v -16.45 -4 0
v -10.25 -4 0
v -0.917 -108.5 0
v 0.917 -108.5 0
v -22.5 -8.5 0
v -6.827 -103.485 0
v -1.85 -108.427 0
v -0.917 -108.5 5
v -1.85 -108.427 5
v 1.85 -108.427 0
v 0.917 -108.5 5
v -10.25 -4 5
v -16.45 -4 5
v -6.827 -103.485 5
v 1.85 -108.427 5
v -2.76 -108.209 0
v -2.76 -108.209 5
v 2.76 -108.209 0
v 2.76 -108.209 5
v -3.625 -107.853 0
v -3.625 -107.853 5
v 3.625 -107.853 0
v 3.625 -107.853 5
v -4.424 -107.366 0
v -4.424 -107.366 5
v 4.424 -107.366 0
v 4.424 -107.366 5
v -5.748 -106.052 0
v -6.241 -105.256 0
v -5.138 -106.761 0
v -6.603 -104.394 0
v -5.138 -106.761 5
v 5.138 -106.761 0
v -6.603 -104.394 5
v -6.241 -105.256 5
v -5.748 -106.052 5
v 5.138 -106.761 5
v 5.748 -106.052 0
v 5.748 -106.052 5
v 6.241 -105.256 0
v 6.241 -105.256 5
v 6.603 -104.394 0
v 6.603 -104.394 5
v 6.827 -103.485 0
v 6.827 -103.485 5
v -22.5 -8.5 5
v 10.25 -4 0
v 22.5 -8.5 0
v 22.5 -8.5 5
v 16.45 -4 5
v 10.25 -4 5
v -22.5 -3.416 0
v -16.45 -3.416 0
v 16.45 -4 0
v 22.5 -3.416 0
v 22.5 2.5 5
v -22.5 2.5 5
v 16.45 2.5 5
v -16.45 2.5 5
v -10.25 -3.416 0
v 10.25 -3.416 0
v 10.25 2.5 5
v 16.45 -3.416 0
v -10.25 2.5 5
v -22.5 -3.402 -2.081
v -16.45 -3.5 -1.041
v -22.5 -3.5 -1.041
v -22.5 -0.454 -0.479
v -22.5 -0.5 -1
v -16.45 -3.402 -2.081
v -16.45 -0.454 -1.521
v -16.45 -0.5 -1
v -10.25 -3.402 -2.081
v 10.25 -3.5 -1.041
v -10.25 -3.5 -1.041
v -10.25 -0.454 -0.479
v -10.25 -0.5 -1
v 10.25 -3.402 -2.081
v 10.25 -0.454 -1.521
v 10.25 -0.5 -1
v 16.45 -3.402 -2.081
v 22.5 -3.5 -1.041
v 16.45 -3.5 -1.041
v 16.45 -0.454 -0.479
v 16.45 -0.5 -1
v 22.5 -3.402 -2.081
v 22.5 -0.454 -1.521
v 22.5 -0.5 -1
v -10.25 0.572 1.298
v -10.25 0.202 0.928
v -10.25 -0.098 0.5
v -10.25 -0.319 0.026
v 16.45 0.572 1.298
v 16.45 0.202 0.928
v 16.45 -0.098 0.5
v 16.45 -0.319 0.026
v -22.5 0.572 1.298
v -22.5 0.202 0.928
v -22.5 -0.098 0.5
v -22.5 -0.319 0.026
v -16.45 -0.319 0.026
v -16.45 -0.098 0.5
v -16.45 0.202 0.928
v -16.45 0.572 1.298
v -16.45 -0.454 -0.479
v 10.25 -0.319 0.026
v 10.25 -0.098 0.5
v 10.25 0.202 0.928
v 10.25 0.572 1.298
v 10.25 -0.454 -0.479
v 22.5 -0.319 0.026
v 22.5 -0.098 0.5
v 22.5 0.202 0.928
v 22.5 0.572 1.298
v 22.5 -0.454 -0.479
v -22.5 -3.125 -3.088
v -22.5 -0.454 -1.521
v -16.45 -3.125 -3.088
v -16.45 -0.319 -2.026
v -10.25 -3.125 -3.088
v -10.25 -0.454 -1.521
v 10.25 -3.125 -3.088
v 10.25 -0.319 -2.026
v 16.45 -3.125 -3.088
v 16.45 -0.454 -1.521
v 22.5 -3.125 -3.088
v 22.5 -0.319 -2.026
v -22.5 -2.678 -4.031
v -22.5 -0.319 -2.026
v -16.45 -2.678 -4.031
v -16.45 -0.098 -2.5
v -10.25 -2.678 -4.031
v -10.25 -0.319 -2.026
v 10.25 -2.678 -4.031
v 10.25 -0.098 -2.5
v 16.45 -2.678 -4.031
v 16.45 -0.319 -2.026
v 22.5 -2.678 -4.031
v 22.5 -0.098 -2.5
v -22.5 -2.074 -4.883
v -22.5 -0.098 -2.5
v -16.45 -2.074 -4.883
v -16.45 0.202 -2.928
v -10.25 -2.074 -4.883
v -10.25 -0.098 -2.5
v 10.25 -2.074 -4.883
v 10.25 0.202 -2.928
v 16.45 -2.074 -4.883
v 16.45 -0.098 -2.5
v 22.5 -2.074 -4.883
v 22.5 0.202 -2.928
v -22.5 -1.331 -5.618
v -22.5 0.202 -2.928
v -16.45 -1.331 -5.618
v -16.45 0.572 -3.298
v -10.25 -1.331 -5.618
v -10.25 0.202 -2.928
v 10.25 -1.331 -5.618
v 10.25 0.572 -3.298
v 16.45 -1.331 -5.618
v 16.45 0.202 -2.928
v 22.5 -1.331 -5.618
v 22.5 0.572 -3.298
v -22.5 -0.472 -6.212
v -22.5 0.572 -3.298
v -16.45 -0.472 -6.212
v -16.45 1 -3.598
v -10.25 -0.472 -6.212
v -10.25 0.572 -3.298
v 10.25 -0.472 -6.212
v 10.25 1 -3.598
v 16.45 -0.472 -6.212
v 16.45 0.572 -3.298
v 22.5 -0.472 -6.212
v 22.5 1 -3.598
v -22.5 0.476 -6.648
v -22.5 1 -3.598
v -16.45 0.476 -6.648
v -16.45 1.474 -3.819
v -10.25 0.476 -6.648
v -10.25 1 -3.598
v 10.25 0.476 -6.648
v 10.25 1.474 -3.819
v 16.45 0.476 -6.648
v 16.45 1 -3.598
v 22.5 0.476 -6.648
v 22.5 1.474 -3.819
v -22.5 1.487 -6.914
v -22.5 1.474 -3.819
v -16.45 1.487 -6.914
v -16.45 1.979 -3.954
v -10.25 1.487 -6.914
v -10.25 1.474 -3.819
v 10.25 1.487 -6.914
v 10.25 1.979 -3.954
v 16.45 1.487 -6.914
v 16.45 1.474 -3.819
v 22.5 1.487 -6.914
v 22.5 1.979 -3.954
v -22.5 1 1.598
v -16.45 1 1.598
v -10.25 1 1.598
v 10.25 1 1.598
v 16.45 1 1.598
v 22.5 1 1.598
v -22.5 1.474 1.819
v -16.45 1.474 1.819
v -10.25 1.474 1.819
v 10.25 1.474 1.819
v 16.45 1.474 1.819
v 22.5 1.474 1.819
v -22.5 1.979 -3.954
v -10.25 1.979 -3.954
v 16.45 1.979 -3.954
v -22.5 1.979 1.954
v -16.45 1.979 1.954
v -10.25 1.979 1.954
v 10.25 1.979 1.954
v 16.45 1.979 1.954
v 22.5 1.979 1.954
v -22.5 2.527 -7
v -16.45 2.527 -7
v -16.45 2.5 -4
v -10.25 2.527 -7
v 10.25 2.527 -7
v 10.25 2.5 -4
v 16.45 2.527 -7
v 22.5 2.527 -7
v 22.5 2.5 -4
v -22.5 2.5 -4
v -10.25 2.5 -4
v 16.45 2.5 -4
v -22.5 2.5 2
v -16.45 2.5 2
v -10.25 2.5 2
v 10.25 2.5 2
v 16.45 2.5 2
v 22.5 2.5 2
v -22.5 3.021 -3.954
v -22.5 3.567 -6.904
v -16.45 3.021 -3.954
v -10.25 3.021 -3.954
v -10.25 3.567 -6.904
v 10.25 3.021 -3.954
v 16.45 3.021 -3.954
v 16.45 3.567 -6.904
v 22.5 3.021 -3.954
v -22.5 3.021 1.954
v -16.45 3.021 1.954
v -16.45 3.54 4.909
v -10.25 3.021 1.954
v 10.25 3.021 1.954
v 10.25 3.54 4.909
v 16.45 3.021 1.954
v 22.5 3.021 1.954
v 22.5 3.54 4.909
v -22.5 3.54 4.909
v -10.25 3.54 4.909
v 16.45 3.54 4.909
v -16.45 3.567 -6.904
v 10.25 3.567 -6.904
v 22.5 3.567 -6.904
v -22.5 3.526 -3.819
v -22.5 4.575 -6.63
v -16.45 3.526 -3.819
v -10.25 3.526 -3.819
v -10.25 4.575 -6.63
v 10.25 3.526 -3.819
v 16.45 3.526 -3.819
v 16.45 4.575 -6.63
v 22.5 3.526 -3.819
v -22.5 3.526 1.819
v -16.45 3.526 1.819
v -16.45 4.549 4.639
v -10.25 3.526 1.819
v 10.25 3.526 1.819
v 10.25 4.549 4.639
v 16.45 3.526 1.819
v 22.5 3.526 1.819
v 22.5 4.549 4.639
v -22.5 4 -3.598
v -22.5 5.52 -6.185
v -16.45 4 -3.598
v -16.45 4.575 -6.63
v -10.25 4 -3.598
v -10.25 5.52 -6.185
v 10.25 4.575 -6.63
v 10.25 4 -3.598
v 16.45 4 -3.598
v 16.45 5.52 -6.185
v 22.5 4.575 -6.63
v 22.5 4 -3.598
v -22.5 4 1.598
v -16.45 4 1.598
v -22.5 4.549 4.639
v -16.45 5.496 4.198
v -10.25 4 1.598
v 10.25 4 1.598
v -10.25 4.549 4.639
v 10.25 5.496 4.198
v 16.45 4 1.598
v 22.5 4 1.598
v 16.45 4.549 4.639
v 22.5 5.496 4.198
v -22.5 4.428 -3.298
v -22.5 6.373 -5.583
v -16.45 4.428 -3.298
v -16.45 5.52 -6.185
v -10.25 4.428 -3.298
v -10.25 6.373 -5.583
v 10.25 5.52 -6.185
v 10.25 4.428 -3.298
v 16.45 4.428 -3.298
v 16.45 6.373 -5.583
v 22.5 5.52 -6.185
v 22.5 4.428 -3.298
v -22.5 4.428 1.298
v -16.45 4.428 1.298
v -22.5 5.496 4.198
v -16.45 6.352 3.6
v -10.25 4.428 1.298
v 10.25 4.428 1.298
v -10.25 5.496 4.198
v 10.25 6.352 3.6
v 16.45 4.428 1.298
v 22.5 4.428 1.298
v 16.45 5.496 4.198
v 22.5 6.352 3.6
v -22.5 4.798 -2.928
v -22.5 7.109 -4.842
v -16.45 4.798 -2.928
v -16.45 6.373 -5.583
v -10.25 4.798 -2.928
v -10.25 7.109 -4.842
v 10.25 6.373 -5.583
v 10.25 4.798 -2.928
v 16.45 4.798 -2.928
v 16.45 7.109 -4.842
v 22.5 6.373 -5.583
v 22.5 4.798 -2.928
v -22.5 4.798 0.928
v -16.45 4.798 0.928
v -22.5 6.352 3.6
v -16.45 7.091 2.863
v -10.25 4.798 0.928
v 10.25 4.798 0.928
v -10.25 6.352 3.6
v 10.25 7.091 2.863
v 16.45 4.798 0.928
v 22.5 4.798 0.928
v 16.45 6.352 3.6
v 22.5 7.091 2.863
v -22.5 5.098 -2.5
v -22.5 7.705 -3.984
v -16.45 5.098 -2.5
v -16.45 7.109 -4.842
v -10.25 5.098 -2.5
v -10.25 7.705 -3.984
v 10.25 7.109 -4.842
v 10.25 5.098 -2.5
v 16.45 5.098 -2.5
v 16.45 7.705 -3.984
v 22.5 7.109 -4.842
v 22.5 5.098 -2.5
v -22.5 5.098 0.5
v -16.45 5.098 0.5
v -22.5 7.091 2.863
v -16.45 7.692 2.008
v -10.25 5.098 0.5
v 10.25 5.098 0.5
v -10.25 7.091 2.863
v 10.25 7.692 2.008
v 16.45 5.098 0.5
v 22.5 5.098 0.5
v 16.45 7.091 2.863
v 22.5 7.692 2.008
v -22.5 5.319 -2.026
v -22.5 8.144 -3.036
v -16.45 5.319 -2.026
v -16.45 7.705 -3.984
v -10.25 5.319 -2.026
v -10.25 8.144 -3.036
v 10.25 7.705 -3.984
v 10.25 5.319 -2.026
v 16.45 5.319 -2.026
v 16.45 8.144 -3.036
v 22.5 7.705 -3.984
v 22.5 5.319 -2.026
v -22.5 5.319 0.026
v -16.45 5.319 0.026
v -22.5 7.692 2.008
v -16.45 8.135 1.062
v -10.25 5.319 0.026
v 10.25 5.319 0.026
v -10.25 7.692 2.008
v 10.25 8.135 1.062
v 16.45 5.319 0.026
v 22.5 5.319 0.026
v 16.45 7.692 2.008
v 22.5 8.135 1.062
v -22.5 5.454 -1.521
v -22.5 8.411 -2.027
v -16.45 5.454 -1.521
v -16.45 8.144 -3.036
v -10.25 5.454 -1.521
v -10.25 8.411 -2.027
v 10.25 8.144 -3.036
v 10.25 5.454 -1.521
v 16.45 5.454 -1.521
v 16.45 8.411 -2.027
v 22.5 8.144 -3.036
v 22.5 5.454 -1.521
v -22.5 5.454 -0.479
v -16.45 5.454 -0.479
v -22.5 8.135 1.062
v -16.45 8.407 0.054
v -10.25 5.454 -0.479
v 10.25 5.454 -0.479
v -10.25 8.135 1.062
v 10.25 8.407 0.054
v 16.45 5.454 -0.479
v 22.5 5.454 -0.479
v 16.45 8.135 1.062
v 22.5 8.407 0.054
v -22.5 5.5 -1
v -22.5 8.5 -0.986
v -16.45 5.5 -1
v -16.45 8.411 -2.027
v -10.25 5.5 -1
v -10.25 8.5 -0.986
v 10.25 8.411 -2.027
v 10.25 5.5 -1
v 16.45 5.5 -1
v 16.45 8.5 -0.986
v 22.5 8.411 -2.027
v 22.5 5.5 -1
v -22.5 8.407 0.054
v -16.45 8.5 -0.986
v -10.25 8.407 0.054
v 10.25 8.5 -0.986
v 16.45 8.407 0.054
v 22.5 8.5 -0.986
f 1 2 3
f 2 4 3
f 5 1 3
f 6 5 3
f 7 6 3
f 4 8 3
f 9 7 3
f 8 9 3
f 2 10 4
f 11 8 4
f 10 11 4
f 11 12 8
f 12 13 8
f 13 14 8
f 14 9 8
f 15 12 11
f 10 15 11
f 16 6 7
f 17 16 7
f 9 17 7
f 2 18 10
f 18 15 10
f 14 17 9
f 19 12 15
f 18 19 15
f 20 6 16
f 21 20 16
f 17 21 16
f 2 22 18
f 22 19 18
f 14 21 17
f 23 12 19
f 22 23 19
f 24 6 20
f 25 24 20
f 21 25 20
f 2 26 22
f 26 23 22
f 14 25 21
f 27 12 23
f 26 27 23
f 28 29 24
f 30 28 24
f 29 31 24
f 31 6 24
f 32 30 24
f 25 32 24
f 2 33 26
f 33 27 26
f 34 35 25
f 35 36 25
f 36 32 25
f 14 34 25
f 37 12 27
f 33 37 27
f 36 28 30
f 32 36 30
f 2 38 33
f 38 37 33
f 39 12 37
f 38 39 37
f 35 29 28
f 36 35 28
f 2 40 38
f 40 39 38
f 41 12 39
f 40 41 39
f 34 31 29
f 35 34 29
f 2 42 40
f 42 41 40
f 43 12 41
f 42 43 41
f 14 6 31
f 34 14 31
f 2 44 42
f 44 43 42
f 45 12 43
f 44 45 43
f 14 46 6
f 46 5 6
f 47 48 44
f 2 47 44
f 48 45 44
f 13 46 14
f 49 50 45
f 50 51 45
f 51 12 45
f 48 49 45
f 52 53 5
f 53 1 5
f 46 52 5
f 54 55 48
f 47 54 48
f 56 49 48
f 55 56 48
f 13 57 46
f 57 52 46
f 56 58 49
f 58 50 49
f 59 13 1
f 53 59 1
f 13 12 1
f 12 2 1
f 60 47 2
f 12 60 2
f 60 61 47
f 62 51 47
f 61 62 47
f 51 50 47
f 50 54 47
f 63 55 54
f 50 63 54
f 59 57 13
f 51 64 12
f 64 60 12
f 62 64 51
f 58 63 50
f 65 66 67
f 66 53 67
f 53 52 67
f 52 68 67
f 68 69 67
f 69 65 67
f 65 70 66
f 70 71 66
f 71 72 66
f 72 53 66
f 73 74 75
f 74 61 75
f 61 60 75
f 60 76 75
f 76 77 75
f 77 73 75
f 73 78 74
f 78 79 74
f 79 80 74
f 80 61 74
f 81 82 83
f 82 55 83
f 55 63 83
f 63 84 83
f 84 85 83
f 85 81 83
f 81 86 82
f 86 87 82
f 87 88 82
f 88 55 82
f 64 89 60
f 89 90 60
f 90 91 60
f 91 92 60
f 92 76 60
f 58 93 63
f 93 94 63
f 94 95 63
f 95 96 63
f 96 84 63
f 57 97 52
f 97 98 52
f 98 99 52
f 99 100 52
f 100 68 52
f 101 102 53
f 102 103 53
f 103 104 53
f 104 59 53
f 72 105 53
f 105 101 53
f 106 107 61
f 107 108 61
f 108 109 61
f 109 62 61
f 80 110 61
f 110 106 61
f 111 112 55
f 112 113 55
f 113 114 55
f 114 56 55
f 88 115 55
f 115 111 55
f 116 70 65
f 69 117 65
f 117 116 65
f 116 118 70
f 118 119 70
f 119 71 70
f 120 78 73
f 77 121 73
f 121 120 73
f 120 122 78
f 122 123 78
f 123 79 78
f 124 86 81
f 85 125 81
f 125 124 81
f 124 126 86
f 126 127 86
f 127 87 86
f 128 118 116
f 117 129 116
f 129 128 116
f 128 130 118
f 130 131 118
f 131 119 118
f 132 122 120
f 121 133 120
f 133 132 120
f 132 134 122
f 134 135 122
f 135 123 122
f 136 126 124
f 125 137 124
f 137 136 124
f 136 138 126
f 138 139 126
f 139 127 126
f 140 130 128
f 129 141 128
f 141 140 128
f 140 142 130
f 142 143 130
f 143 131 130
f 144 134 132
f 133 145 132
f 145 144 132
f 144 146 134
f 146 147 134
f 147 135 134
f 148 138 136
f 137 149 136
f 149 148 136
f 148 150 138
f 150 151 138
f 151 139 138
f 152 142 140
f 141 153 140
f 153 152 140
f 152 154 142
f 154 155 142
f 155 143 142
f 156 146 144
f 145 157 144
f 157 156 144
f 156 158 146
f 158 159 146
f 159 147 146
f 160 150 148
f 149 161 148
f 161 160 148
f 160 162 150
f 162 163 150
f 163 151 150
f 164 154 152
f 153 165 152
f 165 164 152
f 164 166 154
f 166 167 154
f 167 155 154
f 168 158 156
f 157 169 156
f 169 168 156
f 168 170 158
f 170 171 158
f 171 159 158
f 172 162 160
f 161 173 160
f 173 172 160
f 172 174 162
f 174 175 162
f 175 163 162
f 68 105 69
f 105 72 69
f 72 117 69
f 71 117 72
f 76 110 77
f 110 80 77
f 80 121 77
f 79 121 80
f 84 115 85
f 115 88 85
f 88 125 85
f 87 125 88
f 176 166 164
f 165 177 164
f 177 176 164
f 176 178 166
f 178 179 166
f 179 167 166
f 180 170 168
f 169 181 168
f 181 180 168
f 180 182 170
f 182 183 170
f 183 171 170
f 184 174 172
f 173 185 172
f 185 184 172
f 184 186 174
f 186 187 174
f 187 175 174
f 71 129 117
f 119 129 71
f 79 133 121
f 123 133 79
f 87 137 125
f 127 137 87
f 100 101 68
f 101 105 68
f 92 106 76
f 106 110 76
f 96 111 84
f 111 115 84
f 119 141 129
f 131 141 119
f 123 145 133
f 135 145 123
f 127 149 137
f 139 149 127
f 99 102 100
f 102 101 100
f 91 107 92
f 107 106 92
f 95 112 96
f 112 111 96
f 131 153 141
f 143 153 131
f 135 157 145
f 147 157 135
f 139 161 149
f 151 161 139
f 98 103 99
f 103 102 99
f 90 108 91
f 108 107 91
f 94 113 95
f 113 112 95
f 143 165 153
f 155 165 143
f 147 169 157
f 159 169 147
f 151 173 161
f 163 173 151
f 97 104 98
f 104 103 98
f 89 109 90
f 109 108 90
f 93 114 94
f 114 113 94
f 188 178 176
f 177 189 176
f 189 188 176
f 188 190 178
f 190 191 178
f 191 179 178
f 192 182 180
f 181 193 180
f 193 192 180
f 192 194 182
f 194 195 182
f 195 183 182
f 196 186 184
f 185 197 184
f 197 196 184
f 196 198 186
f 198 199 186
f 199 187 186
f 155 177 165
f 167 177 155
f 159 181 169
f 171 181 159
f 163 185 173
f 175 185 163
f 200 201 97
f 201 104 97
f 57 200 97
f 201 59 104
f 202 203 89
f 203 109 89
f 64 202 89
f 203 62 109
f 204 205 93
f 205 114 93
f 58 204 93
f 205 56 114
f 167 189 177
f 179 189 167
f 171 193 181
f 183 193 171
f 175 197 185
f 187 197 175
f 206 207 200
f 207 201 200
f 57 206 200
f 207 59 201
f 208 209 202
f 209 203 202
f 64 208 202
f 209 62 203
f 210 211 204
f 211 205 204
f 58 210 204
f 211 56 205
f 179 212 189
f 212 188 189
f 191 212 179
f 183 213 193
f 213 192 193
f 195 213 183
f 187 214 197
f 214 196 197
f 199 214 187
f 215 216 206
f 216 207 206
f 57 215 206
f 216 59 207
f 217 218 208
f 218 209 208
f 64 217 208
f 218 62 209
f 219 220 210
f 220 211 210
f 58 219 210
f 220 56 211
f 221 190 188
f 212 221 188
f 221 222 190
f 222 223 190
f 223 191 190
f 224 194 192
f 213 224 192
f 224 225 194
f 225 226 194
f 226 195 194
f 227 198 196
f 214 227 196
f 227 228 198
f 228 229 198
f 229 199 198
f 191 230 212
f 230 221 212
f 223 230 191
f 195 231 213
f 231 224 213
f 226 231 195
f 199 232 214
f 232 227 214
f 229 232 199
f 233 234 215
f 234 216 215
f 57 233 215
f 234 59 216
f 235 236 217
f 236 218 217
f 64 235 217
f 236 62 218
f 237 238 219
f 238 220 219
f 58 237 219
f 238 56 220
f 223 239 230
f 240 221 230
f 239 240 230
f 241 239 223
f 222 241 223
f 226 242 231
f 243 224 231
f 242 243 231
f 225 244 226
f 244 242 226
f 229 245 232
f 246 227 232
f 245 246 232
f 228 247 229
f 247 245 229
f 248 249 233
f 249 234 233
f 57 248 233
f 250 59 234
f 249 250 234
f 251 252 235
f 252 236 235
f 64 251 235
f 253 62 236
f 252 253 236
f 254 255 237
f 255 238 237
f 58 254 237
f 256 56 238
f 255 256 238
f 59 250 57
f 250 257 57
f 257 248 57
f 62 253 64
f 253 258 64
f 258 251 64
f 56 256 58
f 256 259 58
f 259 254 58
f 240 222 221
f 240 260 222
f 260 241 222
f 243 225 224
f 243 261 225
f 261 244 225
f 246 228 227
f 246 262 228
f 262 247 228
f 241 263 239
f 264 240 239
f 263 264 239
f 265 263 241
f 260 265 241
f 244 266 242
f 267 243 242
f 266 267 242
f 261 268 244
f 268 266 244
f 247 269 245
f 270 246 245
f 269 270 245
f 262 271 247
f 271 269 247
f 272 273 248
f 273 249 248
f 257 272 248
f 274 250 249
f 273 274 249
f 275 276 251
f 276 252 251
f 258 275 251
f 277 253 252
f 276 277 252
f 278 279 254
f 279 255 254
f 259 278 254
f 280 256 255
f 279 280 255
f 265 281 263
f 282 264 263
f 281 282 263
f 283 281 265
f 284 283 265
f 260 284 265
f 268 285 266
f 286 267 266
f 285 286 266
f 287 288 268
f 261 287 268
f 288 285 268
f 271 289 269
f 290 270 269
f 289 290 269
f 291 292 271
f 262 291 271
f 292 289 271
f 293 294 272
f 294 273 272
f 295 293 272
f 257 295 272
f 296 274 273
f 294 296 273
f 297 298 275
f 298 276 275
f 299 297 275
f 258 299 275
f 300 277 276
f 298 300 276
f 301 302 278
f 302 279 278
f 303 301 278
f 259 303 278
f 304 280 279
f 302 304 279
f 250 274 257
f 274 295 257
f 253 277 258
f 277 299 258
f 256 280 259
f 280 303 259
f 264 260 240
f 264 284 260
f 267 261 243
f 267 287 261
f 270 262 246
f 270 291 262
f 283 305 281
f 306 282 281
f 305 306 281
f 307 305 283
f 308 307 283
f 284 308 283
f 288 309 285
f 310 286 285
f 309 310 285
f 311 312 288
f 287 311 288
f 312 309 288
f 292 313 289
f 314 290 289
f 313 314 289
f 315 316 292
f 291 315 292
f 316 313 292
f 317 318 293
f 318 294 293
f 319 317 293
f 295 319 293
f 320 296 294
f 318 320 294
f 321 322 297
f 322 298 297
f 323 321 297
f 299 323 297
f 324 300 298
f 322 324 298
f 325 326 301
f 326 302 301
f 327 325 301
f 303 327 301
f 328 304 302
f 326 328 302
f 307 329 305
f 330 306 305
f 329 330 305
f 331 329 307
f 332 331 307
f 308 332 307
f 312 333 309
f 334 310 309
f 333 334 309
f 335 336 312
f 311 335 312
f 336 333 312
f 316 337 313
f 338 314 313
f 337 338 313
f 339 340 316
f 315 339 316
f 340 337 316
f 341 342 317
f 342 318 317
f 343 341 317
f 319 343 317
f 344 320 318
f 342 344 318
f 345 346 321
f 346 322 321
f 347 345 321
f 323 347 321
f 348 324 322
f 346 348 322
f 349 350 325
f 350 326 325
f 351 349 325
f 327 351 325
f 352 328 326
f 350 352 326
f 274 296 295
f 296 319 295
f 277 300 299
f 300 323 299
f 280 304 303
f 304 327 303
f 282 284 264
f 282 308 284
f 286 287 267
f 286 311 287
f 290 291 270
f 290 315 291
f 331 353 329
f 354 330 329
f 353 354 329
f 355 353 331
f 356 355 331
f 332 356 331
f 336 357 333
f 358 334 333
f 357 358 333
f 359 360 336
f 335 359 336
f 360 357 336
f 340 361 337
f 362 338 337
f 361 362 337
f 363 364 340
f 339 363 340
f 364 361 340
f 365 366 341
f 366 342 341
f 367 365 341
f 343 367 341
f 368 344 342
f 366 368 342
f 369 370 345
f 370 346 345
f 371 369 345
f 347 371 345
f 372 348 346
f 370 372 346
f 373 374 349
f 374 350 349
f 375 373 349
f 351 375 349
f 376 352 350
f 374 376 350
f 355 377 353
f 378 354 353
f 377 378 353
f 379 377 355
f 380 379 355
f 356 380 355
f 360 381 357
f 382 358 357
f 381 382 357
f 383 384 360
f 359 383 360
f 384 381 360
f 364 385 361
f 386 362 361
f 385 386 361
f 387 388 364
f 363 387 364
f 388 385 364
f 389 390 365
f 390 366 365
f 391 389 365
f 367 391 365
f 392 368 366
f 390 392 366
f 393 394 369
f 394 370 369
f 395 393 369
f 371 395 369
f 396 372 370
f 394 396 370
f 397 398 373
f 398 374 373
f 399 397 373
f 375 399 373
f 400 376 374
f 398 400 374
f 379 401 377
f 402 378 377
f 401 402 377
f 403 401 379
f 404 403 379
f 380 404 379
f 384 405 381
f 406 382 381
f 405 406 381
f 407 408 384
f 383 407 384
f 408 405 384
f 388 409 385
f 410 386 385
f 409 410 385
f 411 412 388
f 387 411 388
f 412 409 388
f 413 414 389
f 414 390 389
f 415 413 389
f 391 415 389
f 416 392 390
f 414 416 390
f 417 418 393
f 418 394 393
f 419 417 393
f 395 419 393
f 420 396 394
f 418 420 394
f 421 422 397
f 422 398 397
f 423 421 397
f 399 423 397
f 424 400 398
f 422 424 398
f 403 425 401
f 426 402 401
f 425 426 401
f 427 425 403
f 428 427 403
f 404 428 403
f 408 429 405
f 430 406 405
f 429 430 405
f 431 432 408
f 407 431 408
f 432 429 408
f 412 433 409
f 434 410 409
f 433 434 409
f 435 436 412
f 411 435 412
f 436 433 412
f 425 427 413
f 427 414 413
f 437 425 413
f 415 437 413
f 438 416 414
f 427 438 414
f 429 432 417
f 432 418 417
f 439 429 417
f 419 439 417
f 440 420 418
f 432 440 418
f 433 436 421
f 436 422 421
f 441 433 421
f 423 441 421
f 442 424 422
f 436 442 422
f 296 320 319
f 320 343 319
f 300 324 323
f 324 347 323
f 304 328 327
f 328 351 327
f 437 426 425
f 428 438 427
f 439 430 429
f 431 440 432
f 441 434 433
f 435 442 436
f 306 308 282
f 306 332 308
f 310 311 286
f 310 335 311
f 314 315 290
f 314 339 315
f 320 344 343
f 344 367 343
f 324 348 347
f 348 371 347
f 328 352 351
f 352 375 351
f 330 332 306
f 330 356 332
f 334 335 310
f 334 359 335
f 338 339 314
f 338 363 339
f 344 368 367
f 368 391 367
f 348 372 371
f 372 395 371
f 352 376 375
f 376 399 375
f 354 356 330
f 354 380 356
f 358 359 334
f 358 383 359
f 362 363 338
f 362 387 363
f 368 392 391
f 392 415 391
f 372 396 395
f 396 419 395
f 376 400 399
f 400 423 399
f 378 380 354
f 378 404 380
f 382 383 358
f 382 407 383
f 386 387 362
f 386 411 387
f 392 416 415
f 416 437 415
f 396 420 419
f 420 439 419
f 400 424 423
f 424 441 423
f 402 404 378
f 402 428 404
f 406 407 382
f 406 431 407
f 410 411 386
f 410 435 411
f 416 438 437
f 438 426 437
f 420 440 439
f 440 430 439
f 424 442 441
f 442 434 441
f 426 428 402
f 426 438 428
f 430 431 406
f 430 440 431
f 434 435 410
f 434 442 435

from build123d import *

# Parameters (mm, degrees)
CROQUIS1_W              = 45
CROQUIS1_H              = 17
SALIENTE_EXTRUIR1_DEPTH = 5
CROQUIS2_R              = 6
CROQUIS2_R_2            = 3
SALIENTE_EXTRUIR2_DEPTH = 45
CORTAR_EXTRUIR1_DEPTH   = 47.32763754
CROQUIS4_W              = 6.2
CROQUIS4_H              = 6.5
CROQUIS4_H_2            = 6
CORTAR_EXTRUIR2_DEPTH   = 27.879360111
SALIENTE_EXTRUIR3_DEPTH = 5
REDONDEO1_R             = 5.99


with BuildPart() as part:
    # Croquis1 → Saliente-Extruir1 (new body)
    with BuildSketch(Plane.XY):
        Rectangle(CROQUIS1_W, CROQUIS1_H)
    extrude(amount=SALIENTE_EXTRUIR1_DEPTH)

    # Croquis2 → Saliente-Extruir2 (add, through all)
    with BuildSketch(Plane(origin=(22.5, 0, 0), x_dir=(0, 0, -1), z_dir=(1, 0, 0))):
        with Locations((1, 2.5)):
            Circle(CROQUIS2_R)
        with Locations((1, 2.5)):
            Circle(CROQUIS2_R_2, mode=Mode.SUBTRACT)
    extrude(amount=-SALIENTE_EXTRUIR2_DEPTH)

    # Croquis3 → Cortar-Extruir1 (cut, through all)
    with BuildSketch(Plane(origin=(22.5, 0, 0), x_dir=(0, 0, -1), z_dir=(1, 0, 0))):
        with BuildLine():
            Line((-5, 8.5), (-5, 2.5))
            ThreePointArc((-5, 2.5), (-3.582575695, 6.372983346), (0, 8.416079783))
            Line((0, 8.416079783), (0, 8.5))
            Line((0, 8.5), (-5, 8.5))
        make_face()
        with BuildLine():
            ThreePointArc((0, -0.328427125), (2.732050808, 0.050510257), (4, 2.5))
            ThreePointArc((4, 2.5), (2.732050808, 4.949489743), (0, 5.328427125))
            Line((0, 5.328427125), (0, -0.328427125))
        make_face()
        with BuildLine():
            Line((0, -0.328427125), (0, 5.328427125))
            ThreePointArc((0, 5.328427125), (-2, 2.5), (0, -0.328427125))
        make_face()
    extrude(amount=-CORTAR_EXTRUIR1_DEPTH, mode=Mode.SUBTRACT)

    # Croquis4 → Cortar-Extruir2 (cut, through all)
    with BuildSketch(Plane.XY.offset(5)):
        with Locations((-13.35, -0.75)):
            Rectangle(CROQUIS4_W, CROQUIS4_H)
        with Locations((-13.35, 5.5)):
            Rectangle(CROQUIS4_W, CROQUIS4_H_2)
        with Locations((13.35, 5.5)):
            Rectangle(CROQUIS4_W, CROQUIS4_H_2)
        with Locations((13.35, -0.75)):
            Rectangle(CROQUIS4_W, CROQUIS4_H)
    extrude(amount=-CORTAR_EXTRUIR2_DEPTH, mode=Mode.SUBTRACT)

    # Croquis5 → Saliente-Extruir3 (add)
    with BuildSketch(Plane(origin=(0, 0, 0), x_dir=(-1, 0, 0), z_dir=(0, 0, -1))):
        Polygon((22.5, -8.5), (-22.5, -8.5), (-6, -108.5), (6, -108.5), align=None)
    extrude(amount=-SALIENTE_EXTRUIR3_DEPTH)

    # Redondeo1
    redondeo1_edges = [part.edges().sort_by_distance(p)[0] for p in [
        (6, -108.5, 2.5),
        (-6, -108.5, 2.5),
    ]]
    fillet(redondeo1_edges, radius=REDONDEO1_R)


solid = part.part
